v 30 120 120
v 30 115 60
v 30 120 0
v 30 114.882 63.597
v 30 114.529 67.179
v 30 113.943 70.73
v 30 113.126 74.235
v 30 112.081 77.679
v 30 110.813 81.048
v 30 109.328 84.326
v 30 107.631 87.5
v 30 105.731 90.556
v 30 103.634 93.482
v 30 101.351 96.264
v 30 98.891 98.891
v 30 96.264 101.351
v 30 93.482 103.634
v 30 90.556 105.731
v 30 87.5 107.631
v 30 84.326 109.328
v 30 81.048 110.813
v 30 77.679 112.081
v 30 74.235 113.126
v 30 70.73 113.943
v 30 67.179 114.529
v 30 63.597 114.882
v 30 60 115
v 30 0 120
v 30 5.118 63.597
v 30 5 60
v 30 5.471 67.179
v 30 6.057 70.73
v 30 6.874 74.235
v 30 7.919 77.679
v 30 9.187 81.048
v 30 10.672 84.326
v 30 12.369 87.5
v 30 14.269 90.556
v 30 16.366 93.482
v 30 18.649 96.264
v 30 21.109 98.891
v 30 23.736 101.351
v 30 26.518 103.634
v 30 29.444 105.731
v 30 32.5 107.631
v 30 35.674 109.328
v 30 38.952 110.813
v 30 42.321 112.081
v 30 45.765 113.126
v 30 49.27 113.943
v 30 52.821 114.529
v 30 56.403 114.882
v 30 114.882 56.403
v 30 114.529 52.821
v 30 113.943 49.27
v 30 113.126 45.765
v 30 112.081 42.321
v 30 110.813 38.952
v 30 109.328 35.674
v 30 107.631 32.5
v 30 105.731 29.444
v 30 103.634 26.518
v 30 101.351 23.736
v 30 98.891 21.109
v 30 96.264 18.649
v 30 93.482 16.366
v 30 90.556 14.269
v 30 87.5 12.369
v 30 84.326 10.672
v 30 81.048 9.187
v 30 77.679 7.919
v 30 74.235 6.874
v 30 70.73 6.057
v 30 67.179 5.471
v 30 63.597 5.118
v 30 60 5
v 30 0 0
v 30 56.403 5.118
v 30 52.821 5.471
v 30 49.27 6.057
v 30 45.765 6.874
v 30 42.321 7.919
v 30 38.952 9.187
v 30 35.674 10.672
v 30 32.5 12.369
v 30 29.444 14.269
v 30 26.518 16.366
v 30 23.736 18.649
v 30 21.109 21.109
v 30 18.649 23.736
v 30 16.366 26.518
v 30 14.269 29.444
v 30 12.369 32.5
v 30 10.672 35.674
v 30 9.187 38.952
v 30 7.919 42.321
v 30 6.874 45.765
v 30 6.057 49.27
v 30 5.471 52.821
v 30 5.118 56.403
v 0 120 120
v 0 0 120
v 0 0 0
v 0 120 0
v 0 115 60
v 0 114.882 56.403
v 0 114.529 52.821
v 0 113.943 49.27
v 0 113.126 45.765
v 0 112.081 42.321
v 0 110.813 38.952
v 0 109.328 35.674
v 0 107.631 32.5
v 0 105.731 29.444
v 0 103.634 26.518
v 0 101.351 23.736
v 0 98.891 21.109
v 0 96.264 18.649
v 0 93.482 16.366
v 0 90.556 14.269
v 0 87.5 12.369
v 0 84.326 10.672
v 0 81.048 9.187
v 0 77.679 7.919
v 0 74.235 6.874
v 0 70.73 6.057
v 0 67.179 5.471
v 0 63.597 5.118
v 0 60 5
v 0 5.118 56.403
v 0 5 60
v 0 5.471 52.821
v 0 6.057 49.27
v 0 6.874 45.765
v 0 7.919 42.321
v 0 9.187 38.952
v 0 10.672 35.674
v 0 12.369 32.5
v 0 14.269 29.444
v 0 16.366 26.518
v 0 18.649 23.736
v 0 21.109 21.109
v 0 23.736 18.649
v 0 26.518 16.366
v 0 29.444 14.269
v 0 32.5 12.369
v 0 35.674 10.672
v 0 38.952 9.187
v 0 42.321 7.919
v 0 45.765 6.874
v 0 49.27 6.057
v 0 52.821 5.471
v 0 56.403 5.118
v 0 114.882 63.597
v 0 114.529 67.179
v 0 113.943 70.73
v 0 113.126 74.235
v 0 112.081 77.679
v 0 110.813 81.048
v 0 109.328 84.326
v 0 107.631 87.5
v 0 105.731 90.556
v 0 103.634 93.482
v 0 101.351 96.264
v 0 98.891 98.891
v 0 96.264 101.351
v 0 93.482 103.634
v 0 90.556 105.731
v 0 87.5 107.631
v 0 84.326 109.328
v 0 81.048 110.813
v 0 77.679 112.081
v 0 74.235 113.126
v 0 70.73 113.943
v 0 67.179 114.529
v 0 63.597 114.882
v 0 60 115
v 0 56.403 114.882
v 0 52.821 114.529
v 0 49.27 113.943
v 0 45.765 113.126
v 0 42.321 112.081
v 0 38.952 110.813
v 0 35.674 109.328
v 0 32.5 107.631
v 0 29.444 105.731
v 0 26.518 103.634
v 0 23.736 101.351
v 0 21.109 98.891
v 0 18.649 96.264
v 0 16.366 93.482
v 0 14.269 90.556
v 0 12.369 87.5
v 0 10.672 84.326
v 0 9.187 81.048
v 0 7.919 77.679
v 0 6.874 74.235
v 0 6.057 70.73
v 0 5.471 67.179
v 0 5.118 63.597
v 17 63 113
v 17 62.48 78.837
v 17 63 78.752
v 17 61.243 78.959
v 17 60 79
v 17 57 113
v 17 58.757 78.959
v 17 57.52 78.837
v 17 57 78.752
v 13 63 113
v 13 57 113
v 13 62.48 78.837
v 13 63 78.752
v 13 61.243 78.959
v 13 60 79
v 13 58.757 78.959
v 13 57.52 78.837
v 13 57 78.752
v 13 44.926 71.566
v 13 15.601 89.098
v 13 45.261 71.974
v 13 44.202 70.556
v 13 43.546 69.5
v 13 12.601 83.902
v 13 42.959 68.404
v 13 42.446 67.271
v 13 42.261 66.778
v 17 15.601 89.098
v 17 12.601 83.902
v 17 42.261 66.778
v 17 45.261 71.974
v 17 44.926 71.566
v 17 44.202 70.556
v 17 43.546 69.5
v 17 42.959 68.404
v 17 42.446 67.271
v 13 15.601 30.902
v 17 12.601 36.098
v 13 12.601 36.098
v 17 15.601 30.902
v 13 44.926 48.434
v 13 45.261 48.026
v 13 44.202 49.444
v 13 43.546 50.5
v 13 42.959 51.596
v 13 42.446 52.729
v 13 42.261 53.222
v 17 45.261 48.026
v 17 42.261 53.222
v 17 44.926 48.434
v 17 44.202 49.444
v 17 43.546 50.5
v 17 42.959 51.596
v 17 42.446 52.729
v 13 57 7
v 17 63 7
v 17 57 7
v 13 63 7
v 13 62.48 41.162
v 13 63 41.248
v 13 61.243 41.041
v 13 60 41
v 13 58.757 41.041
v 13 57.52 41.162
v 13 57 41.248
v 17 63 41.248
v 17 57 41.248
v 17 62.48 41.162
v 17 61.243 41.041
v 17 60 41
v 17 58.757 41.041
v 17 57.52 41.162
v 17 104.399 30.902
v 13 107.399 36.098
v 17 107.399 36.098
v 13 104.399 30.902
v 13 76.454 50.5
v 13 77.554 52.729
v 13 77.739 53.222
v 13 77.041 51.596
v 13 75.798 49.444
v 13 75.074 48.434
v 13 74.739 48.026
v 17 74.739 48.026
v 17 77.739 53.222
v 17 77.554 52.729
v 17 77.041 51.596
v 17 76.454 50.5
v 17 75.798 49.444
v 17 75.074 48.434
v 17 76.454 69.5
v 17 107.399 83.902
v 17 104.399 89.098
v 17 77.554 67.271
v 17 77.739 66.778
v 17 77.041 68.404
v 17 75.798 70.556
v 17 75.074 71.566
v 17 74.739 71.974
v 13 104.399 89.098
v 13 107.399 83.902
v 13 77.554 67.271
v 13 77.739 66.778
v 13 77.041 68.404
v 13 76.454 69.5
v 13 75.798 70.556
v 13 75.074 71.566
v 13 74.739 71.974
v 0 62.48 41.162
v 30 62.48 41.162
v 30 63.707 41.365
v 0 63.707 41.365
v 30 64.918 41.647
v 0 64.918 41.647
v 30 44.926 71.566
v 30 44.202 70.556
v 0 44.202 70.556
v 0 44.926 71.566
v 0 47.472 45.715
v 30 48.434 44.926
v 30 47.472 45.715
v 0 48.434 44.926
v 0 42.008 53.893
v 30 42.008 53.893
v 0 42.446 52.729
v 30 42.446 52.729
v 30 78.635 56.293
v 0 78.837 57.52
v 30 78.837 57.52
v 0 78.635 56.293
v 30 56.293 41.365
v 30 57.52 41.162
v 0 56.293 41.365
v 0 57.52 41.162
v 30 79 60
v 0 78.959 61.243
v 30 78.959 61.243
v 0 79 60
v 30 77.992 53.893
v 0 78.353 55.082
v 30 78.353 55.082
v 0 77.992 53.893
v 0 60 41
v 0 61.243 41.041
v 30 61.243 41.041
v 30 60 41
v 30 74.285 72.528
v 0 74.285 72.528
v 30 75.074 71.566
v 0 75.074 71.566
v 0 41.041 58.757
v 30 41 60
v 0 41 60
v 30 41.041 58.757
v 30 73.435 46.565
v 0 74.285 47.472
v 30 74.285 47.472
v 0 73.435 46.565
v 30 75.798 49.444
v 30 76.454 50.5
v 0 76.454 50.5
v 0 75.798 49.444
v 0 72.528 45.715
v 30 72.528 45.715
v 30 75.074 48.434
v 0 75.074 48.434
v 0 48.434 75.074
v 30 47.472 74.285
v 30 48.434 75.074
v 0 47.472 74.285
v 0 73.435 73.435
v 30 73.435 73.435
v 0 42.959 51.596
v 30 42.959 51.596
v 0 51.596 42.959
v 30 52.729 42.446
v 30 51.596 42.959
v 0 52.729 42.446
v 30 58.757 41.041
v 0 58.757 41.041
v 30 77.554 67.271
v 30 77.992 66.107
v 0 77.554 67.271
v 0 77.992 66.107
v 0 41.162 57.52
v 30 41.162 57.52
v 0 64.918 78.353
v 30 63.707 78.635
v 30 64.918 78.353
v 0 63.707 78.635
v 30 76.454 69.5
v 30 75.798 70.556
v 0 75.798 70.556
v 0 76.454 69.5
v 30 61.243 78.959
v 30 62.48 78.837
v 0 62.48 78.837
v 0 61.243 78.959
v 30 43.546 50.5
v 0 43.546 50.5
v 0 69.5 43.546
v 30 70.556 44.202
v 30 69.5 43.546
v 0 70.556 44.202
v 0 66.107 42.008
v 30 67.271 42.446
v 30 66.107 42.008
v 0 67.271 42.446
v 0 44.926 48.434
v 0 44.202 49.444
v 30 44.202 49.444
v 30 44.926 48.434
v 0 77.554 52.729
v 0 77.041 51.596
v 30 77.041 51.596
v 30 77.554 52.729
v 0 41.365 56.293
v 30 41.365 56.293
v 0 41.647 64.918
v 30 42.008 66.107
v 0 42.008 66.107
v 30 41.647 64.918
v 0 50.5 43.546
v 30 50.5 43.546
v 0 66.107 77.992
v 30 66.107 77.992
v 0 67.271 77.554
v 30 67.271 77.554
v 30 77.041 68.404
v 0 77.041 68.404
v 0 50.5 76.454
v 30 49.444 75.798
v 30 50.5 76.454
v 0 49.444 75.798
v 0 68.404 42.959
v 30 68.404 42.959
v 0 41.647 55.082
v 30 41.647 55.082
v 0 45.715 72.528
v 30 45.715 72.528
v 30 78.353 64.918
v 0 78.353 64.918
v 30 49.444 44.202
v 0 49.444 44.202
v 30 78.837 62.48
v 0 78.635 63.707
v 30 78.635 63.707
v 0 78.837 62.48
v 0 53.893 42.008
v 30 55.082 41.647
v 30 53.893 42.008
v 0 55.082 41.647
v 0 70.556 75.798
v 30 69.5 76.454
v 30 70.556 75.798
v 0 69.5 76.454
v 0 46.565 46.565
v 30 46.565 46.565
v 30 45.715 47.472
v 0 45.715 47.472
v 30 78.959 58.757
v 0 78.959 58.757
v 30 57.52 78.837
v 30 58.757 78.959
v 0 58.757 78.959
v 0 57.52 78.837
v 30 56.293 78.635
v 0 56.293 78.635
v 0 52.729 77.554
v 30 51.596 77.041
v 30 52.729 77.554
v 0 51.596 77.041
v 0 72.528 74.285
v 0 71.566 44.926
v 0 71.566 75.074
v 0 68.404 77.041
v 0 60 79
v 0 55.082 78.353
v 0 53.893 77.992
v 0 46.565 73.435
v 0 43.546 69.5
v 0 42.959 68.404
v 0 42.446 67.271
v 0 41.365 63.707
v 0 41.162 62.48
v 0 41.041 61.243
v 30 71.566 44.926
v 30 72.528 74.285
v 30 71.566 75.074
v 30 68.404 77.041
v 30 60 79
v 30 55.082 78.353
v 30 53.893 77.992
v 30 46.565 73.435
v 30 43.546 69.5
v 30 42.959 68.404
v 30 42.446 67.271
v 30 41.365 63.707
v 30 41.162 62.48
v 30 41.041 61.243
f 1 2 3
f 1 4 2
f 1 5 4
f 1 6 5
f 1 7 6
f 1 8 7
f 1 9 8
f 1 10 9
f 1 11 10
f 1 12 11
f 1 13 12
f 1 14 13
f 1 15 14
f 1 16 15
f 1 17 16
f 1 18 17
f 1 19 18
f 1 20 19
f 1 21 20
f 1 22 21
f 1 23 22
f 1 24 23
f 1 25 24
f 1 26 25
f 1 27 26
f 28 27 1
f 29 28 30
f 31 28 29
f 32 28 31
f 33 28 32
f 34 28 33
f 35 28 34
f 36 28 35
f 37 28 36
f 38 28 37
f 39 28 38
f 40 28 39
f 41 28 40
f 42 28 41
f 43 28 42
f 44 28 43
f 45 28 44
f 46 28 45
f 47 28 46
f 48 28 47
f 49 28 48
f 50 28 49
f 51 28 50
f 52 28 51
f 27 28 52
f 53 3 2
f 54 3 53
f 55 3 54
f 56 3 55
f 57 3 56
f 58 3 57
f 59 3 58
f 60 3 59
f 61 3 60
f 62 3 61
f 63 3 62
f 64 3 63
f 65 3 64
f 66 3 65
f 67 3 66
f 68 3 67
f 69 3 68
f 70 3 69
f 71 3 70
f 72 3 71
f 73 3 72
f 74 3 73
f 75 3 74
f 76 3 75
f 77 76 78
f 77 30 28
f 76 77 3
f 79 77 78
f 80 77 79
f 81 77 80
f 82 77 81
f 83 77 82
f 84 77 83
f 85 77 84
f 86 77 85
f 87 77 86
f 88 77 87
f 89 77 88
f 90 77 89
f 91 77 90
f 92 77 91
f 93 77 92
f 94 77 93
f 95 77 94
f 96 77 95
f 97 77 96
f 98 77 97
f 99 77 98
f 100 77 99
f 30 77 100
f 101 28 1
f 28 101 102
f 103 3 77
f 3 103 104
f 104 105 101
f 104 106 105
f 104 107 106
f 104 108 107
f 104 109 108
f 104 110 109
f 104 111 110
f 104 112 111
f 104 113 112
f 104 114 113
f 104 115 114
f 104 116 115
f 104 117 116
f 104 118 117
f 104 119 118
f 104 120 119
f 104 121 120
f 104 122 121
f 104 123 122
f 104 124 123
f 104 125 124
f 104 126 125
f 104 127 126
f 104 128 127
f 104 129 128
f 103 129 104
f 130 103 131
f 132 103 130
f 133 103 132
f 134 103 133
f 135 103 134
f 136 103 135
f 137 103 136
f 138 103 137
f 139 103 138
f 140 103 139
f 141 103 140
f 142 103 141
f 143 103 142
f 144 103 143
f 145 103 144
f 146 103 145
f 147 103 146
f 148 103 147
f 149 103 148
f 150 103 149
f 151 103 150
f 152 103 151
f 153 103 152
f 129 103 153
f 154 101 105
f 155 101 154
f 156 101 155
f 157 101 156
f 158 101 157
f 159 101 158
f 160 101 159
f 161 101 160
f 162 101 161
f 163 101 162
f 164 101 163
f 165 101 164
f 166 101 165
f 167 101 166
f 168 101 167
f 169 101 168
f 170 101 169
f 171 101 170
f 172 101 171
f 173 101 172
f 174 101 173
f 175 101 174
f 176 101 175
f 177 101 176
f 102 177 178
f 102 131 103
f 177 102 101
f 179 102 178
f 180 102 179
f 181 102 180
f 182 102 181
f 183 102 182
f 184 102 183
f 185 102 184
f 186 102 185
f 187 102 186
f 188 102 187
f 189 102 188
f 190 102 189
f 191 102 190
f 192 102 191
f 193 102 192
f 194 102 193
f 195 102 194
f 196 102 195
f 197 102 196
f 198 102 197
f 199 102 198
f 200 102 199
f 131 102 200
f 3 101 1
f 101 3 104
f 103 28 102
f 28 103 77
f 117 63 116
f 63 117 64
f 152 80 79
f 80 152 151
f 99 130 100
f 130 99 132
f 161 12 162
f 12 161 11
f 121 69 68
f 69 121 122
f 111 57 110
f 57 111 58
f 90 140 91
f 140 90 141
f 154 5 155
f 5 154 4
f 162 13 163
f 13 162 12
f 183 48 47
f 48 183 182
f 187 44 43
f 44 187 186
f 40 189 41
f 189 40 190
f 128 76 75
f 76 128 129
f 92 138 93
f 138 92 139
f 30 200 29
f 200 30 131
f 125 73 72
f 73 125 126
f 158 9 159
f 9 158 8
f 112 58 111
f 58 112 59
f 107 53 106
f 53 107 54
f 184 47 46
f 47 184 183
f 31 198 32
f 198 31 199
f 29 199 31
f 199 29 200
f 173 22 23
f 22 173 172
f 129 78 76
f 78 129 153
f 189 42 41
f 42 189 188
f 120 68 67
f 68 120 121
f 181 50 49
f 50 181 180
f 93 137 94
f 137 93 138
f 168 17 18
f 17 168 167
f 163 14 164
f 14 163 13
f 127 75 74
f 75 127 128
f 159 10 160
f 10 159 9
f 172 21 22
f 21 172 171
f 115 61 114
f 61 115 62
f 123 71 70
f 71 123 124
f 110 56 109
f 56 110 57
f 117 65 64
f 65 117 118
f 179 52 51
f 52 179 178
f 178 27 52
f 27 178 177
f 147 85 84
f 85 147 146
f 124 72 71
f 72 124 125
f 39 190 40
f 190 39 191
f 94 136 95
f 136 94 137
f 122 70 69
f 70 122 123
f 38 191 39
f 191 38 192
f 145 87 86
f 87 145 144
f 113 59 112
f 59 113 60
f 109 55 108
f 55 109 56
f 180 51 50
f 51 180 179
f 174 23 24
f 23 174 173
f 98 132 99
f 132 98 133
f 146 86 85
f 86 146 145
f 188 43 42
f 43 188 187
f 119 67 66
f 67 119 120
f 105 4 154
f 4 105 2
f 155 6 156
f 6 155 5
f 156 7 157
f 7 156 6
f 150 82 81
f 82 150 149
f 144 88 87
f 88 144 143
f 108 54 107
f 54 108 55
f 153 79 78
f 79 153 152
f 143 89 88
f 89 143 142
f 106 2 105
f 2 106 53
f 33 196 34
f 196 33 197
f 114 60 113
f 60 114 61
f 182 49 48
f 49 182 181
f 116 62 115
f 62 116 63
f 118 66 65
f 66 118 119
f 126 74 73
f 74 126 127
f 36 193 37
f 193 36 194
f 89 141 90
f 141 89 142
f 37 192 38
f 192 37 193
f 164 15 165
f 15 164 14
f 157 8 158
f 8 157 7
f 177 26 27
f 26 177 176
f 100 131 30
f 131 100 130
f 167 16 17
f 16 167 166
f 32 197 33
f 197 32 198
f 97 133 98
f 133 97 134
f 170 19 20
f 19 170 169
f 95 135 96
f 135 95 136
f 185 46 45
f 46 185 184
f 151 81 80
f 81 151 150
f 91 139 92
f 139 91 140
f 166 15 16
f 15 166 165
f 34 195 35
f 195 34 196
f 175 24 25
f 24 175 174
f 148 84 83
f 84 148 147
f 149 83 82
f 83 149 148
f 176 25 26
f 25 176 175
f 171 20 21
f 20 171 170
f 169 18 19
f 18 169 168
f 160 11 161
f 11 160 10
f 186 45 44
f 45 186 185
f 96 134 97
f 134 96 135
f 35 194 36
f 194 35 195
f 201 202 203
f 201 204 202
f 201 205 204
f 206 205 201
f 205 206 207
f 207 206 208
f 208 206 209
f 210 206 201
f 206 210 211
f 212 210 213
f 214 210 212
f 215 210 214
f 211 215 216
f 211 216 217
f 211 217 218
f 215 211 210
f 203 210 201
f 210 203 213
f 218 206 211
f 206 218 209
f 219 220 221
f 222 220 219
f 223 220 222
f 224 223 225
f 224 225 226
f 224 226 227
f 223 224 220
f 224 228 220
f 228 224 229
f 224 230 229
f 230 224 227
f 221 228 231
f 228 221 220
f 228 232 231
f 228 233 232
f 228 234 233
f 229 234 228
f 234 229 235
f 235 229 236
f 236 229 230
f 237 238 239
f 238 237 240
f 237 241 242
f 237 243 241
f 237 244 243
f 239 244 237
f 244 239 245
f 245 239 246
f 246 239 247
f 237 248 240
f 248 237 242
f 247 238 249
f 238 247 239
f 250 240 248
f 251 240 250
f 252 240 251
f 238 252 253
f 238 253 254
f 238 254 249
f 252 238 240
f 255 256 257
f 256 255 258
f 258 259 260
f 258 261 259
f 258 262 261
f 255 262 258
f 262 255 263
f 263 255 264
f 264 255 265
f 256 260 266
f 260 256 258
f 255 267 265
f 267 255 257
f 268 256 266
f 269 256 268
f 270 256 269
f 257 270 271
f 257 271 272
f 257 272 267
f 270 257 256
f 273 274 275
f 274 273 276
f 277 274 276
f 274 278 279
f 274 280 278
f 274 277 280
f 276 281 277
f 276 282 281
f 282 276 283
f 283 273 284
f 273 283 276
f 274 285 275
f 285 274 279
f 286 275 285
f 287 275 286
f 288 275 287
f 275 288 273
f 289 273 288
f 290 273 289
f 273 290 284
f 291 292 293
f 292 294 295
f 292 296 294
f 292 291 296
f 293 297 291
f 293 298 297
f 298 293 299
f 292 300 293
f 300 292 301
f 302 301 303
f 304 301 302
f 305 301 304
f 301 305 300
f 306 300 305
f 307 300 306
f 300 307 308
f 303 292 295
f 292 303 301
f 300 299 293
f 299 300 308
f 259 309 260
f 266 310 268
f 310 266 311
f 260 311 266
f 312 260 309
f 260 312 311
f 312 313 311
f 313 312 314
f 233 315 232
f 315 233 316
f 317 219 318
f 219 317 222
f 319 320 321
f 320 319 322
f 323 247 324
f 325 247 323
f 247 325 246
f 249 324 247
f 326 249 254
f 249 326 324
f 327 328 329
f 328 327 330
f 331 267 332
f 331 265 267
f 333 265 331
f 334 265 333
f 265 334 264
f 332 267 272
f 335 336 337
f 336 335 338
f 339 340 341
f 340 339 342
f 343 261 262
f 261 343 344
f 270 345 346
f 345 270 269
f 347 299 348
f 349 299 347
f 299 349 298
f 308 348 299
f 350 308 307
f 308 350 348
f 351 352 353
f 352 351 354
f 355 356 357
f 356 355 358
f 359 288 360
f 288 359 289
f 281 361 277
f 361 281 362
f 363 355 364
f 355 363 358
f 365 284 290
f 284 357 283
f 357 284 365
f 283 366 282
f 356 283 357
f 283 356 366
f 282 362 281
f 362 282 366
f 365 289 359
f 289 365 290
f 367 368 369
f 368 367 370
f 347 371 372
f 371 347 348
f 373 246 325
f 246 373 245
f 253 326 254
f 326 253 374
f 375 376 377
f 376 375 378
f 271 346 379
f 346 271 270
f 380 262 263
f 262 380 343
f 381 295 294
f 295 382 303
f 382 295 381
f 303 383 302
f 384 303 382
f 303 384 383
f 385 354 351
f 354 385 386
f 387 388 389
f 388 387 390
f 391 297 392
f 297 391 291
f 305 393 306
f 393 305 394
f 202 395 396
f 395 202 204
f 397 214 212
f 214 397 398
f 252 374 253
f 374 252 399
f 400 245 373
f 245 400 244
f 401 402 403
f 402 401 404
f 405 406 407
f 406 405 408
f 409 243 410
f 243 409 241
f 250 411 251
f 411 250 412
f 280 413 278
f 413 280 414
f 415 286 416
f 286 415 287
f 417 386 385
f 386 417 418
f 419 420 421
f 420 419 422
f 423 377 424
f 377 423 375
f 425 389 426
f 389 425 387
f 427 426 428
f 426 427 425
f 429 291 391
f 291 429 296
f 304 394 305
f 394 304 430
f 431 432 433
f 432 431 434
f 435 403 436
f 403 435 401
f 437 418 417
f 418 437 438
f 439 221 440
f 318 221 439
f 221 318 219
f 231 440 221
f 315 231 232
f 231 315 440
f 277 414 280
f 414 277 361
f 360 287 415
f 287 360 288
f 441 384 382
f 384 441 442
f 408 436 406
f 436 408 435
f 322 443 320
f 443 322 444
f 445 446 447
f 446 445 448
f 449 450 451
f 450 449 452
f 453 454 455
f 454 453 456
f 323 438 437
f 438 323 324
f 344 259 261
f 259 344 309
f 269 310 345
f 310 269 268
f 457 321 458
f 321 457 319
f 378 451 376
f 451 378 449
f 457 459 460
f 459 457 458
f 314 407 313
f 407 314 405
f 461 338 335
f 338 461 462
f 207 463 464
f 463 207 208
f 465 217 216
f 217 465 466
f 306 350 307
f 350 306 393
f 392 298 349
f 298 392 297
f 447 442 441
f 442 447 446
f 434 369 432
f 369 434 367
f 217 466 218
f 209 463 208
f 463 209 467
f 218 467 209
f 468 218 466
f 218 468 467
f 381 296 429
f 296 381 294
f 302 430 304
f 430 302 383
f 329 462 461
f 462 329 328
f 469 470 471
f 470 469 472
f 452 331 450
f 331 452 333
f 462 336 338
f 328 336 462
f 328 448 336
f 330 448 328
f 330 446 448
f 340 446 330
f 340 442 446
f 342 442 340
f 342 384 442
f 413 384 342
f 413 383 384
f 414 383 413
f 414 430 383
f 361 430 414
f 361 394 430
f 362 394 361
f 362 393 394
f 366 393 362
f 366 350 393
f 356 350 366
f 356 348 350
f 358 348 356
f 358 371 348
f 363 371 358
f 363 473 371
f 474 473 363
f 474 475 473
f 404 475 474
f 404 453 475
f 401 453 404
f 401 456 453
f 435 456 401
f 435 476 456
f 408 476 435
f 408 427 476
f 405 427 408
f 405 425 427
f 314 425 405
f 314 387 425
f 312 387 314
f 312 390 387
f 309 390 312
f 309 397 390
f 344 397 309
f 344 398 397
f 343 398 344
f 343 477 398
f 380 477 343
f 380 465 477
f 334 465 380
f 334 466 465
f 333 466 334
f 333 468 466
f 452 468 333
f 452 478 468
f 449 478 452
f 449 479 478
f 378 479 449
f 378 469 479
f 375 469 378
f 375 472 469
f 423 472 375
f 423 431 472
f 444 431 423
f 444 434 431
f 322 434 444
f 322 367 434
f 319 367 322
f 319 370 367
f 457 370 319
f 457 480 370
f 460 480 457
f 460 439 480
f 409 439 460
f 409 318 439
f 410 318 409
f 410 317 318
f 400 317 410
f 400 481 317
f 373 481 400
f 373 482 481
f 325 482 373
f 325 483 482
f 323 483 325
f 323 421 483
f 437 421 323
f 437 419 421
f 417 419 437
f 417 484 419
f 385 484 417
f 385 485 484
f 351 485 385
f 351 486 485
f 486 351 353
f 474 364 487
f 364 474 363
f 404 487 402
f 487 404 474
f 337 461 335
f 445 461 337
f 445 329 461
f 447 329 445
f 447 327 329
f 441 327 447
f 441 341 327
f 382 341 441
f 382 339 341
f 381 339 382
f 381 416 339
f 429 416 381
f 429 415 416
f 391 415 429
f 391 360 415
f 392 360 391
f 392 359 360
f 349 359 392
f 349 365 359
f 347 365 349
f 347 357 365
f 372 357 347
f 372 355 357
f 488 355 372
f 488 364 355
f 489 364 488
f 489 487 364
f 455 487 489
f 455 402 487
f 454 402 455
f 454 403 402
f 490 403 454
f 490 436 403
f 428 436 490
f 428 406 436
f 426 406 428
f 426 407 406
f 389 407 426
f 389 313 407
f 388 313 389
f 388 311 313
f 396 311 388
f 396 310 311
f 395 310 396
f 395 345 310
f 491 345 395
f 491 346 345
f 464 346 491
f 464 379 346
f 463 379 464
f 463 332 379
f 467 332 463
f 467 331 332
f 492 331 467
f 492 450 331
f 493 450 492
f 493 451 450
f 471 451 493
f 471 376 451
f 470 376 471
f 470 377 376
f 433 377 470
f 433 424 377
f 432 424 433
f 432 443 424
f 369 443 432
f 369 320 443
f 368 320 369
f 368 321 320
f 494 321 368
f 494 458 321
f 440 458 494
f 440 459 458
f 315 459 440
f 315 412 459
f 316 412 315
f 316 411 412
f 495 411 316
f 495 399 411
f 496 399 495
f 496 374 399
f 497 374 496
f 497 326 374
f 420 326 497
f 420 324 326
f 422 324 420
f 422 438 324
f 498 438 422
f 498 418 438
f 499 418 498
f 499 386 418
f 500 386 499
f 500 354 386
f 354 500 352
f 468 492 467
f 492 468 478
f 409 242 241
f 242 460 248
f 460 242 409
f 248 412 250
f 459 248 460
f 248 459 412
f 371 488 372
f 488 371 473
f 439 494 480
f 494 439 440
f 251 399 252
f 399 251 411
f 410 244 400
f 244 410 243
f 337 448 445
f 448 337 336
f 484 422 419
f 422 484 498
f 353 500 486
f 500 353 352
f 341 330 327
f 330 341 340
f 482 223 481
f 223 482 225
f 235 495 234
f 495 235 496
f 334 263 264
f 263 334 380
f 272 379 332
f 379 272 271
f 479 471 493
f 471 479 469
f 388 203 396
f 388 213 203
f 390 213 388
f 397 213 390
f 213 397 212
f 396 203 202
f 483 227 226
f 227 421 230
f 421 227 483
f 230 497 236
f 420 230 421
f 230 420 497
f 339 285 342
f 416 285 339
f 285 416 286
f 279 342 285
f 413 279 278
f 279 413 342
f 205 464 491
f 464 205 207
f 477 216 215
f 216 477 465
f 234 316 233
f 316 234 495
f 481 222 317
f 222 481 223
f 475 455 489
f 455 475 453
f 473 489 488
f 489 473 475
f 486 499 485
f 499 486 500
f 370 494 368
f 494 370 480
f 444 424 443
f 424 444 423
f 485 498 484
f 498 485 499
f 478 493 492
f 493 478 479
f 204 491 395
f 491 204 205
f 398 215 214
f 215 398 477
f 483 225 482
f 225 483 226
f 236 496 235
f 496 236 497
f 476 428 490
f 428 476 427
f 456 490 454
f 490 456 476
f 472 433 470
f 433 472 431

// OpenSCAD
// REFERENCIA COMERCIAL: NAO IMPRIMIR ESTE MODELO
$fn=96;difference(){cube([30,120,120]);translate([-1,60,60])rotate([0,90,0])cylinder(h=32,r=55);}
 translate([0,60,60])rotate([0,90,0])cylinder(h=30,r=19);
 for(a=[0:60:300])translate([15,60,60])rotate([a,0,0])translate([-2,-3,14])cube([4,6,39]);
